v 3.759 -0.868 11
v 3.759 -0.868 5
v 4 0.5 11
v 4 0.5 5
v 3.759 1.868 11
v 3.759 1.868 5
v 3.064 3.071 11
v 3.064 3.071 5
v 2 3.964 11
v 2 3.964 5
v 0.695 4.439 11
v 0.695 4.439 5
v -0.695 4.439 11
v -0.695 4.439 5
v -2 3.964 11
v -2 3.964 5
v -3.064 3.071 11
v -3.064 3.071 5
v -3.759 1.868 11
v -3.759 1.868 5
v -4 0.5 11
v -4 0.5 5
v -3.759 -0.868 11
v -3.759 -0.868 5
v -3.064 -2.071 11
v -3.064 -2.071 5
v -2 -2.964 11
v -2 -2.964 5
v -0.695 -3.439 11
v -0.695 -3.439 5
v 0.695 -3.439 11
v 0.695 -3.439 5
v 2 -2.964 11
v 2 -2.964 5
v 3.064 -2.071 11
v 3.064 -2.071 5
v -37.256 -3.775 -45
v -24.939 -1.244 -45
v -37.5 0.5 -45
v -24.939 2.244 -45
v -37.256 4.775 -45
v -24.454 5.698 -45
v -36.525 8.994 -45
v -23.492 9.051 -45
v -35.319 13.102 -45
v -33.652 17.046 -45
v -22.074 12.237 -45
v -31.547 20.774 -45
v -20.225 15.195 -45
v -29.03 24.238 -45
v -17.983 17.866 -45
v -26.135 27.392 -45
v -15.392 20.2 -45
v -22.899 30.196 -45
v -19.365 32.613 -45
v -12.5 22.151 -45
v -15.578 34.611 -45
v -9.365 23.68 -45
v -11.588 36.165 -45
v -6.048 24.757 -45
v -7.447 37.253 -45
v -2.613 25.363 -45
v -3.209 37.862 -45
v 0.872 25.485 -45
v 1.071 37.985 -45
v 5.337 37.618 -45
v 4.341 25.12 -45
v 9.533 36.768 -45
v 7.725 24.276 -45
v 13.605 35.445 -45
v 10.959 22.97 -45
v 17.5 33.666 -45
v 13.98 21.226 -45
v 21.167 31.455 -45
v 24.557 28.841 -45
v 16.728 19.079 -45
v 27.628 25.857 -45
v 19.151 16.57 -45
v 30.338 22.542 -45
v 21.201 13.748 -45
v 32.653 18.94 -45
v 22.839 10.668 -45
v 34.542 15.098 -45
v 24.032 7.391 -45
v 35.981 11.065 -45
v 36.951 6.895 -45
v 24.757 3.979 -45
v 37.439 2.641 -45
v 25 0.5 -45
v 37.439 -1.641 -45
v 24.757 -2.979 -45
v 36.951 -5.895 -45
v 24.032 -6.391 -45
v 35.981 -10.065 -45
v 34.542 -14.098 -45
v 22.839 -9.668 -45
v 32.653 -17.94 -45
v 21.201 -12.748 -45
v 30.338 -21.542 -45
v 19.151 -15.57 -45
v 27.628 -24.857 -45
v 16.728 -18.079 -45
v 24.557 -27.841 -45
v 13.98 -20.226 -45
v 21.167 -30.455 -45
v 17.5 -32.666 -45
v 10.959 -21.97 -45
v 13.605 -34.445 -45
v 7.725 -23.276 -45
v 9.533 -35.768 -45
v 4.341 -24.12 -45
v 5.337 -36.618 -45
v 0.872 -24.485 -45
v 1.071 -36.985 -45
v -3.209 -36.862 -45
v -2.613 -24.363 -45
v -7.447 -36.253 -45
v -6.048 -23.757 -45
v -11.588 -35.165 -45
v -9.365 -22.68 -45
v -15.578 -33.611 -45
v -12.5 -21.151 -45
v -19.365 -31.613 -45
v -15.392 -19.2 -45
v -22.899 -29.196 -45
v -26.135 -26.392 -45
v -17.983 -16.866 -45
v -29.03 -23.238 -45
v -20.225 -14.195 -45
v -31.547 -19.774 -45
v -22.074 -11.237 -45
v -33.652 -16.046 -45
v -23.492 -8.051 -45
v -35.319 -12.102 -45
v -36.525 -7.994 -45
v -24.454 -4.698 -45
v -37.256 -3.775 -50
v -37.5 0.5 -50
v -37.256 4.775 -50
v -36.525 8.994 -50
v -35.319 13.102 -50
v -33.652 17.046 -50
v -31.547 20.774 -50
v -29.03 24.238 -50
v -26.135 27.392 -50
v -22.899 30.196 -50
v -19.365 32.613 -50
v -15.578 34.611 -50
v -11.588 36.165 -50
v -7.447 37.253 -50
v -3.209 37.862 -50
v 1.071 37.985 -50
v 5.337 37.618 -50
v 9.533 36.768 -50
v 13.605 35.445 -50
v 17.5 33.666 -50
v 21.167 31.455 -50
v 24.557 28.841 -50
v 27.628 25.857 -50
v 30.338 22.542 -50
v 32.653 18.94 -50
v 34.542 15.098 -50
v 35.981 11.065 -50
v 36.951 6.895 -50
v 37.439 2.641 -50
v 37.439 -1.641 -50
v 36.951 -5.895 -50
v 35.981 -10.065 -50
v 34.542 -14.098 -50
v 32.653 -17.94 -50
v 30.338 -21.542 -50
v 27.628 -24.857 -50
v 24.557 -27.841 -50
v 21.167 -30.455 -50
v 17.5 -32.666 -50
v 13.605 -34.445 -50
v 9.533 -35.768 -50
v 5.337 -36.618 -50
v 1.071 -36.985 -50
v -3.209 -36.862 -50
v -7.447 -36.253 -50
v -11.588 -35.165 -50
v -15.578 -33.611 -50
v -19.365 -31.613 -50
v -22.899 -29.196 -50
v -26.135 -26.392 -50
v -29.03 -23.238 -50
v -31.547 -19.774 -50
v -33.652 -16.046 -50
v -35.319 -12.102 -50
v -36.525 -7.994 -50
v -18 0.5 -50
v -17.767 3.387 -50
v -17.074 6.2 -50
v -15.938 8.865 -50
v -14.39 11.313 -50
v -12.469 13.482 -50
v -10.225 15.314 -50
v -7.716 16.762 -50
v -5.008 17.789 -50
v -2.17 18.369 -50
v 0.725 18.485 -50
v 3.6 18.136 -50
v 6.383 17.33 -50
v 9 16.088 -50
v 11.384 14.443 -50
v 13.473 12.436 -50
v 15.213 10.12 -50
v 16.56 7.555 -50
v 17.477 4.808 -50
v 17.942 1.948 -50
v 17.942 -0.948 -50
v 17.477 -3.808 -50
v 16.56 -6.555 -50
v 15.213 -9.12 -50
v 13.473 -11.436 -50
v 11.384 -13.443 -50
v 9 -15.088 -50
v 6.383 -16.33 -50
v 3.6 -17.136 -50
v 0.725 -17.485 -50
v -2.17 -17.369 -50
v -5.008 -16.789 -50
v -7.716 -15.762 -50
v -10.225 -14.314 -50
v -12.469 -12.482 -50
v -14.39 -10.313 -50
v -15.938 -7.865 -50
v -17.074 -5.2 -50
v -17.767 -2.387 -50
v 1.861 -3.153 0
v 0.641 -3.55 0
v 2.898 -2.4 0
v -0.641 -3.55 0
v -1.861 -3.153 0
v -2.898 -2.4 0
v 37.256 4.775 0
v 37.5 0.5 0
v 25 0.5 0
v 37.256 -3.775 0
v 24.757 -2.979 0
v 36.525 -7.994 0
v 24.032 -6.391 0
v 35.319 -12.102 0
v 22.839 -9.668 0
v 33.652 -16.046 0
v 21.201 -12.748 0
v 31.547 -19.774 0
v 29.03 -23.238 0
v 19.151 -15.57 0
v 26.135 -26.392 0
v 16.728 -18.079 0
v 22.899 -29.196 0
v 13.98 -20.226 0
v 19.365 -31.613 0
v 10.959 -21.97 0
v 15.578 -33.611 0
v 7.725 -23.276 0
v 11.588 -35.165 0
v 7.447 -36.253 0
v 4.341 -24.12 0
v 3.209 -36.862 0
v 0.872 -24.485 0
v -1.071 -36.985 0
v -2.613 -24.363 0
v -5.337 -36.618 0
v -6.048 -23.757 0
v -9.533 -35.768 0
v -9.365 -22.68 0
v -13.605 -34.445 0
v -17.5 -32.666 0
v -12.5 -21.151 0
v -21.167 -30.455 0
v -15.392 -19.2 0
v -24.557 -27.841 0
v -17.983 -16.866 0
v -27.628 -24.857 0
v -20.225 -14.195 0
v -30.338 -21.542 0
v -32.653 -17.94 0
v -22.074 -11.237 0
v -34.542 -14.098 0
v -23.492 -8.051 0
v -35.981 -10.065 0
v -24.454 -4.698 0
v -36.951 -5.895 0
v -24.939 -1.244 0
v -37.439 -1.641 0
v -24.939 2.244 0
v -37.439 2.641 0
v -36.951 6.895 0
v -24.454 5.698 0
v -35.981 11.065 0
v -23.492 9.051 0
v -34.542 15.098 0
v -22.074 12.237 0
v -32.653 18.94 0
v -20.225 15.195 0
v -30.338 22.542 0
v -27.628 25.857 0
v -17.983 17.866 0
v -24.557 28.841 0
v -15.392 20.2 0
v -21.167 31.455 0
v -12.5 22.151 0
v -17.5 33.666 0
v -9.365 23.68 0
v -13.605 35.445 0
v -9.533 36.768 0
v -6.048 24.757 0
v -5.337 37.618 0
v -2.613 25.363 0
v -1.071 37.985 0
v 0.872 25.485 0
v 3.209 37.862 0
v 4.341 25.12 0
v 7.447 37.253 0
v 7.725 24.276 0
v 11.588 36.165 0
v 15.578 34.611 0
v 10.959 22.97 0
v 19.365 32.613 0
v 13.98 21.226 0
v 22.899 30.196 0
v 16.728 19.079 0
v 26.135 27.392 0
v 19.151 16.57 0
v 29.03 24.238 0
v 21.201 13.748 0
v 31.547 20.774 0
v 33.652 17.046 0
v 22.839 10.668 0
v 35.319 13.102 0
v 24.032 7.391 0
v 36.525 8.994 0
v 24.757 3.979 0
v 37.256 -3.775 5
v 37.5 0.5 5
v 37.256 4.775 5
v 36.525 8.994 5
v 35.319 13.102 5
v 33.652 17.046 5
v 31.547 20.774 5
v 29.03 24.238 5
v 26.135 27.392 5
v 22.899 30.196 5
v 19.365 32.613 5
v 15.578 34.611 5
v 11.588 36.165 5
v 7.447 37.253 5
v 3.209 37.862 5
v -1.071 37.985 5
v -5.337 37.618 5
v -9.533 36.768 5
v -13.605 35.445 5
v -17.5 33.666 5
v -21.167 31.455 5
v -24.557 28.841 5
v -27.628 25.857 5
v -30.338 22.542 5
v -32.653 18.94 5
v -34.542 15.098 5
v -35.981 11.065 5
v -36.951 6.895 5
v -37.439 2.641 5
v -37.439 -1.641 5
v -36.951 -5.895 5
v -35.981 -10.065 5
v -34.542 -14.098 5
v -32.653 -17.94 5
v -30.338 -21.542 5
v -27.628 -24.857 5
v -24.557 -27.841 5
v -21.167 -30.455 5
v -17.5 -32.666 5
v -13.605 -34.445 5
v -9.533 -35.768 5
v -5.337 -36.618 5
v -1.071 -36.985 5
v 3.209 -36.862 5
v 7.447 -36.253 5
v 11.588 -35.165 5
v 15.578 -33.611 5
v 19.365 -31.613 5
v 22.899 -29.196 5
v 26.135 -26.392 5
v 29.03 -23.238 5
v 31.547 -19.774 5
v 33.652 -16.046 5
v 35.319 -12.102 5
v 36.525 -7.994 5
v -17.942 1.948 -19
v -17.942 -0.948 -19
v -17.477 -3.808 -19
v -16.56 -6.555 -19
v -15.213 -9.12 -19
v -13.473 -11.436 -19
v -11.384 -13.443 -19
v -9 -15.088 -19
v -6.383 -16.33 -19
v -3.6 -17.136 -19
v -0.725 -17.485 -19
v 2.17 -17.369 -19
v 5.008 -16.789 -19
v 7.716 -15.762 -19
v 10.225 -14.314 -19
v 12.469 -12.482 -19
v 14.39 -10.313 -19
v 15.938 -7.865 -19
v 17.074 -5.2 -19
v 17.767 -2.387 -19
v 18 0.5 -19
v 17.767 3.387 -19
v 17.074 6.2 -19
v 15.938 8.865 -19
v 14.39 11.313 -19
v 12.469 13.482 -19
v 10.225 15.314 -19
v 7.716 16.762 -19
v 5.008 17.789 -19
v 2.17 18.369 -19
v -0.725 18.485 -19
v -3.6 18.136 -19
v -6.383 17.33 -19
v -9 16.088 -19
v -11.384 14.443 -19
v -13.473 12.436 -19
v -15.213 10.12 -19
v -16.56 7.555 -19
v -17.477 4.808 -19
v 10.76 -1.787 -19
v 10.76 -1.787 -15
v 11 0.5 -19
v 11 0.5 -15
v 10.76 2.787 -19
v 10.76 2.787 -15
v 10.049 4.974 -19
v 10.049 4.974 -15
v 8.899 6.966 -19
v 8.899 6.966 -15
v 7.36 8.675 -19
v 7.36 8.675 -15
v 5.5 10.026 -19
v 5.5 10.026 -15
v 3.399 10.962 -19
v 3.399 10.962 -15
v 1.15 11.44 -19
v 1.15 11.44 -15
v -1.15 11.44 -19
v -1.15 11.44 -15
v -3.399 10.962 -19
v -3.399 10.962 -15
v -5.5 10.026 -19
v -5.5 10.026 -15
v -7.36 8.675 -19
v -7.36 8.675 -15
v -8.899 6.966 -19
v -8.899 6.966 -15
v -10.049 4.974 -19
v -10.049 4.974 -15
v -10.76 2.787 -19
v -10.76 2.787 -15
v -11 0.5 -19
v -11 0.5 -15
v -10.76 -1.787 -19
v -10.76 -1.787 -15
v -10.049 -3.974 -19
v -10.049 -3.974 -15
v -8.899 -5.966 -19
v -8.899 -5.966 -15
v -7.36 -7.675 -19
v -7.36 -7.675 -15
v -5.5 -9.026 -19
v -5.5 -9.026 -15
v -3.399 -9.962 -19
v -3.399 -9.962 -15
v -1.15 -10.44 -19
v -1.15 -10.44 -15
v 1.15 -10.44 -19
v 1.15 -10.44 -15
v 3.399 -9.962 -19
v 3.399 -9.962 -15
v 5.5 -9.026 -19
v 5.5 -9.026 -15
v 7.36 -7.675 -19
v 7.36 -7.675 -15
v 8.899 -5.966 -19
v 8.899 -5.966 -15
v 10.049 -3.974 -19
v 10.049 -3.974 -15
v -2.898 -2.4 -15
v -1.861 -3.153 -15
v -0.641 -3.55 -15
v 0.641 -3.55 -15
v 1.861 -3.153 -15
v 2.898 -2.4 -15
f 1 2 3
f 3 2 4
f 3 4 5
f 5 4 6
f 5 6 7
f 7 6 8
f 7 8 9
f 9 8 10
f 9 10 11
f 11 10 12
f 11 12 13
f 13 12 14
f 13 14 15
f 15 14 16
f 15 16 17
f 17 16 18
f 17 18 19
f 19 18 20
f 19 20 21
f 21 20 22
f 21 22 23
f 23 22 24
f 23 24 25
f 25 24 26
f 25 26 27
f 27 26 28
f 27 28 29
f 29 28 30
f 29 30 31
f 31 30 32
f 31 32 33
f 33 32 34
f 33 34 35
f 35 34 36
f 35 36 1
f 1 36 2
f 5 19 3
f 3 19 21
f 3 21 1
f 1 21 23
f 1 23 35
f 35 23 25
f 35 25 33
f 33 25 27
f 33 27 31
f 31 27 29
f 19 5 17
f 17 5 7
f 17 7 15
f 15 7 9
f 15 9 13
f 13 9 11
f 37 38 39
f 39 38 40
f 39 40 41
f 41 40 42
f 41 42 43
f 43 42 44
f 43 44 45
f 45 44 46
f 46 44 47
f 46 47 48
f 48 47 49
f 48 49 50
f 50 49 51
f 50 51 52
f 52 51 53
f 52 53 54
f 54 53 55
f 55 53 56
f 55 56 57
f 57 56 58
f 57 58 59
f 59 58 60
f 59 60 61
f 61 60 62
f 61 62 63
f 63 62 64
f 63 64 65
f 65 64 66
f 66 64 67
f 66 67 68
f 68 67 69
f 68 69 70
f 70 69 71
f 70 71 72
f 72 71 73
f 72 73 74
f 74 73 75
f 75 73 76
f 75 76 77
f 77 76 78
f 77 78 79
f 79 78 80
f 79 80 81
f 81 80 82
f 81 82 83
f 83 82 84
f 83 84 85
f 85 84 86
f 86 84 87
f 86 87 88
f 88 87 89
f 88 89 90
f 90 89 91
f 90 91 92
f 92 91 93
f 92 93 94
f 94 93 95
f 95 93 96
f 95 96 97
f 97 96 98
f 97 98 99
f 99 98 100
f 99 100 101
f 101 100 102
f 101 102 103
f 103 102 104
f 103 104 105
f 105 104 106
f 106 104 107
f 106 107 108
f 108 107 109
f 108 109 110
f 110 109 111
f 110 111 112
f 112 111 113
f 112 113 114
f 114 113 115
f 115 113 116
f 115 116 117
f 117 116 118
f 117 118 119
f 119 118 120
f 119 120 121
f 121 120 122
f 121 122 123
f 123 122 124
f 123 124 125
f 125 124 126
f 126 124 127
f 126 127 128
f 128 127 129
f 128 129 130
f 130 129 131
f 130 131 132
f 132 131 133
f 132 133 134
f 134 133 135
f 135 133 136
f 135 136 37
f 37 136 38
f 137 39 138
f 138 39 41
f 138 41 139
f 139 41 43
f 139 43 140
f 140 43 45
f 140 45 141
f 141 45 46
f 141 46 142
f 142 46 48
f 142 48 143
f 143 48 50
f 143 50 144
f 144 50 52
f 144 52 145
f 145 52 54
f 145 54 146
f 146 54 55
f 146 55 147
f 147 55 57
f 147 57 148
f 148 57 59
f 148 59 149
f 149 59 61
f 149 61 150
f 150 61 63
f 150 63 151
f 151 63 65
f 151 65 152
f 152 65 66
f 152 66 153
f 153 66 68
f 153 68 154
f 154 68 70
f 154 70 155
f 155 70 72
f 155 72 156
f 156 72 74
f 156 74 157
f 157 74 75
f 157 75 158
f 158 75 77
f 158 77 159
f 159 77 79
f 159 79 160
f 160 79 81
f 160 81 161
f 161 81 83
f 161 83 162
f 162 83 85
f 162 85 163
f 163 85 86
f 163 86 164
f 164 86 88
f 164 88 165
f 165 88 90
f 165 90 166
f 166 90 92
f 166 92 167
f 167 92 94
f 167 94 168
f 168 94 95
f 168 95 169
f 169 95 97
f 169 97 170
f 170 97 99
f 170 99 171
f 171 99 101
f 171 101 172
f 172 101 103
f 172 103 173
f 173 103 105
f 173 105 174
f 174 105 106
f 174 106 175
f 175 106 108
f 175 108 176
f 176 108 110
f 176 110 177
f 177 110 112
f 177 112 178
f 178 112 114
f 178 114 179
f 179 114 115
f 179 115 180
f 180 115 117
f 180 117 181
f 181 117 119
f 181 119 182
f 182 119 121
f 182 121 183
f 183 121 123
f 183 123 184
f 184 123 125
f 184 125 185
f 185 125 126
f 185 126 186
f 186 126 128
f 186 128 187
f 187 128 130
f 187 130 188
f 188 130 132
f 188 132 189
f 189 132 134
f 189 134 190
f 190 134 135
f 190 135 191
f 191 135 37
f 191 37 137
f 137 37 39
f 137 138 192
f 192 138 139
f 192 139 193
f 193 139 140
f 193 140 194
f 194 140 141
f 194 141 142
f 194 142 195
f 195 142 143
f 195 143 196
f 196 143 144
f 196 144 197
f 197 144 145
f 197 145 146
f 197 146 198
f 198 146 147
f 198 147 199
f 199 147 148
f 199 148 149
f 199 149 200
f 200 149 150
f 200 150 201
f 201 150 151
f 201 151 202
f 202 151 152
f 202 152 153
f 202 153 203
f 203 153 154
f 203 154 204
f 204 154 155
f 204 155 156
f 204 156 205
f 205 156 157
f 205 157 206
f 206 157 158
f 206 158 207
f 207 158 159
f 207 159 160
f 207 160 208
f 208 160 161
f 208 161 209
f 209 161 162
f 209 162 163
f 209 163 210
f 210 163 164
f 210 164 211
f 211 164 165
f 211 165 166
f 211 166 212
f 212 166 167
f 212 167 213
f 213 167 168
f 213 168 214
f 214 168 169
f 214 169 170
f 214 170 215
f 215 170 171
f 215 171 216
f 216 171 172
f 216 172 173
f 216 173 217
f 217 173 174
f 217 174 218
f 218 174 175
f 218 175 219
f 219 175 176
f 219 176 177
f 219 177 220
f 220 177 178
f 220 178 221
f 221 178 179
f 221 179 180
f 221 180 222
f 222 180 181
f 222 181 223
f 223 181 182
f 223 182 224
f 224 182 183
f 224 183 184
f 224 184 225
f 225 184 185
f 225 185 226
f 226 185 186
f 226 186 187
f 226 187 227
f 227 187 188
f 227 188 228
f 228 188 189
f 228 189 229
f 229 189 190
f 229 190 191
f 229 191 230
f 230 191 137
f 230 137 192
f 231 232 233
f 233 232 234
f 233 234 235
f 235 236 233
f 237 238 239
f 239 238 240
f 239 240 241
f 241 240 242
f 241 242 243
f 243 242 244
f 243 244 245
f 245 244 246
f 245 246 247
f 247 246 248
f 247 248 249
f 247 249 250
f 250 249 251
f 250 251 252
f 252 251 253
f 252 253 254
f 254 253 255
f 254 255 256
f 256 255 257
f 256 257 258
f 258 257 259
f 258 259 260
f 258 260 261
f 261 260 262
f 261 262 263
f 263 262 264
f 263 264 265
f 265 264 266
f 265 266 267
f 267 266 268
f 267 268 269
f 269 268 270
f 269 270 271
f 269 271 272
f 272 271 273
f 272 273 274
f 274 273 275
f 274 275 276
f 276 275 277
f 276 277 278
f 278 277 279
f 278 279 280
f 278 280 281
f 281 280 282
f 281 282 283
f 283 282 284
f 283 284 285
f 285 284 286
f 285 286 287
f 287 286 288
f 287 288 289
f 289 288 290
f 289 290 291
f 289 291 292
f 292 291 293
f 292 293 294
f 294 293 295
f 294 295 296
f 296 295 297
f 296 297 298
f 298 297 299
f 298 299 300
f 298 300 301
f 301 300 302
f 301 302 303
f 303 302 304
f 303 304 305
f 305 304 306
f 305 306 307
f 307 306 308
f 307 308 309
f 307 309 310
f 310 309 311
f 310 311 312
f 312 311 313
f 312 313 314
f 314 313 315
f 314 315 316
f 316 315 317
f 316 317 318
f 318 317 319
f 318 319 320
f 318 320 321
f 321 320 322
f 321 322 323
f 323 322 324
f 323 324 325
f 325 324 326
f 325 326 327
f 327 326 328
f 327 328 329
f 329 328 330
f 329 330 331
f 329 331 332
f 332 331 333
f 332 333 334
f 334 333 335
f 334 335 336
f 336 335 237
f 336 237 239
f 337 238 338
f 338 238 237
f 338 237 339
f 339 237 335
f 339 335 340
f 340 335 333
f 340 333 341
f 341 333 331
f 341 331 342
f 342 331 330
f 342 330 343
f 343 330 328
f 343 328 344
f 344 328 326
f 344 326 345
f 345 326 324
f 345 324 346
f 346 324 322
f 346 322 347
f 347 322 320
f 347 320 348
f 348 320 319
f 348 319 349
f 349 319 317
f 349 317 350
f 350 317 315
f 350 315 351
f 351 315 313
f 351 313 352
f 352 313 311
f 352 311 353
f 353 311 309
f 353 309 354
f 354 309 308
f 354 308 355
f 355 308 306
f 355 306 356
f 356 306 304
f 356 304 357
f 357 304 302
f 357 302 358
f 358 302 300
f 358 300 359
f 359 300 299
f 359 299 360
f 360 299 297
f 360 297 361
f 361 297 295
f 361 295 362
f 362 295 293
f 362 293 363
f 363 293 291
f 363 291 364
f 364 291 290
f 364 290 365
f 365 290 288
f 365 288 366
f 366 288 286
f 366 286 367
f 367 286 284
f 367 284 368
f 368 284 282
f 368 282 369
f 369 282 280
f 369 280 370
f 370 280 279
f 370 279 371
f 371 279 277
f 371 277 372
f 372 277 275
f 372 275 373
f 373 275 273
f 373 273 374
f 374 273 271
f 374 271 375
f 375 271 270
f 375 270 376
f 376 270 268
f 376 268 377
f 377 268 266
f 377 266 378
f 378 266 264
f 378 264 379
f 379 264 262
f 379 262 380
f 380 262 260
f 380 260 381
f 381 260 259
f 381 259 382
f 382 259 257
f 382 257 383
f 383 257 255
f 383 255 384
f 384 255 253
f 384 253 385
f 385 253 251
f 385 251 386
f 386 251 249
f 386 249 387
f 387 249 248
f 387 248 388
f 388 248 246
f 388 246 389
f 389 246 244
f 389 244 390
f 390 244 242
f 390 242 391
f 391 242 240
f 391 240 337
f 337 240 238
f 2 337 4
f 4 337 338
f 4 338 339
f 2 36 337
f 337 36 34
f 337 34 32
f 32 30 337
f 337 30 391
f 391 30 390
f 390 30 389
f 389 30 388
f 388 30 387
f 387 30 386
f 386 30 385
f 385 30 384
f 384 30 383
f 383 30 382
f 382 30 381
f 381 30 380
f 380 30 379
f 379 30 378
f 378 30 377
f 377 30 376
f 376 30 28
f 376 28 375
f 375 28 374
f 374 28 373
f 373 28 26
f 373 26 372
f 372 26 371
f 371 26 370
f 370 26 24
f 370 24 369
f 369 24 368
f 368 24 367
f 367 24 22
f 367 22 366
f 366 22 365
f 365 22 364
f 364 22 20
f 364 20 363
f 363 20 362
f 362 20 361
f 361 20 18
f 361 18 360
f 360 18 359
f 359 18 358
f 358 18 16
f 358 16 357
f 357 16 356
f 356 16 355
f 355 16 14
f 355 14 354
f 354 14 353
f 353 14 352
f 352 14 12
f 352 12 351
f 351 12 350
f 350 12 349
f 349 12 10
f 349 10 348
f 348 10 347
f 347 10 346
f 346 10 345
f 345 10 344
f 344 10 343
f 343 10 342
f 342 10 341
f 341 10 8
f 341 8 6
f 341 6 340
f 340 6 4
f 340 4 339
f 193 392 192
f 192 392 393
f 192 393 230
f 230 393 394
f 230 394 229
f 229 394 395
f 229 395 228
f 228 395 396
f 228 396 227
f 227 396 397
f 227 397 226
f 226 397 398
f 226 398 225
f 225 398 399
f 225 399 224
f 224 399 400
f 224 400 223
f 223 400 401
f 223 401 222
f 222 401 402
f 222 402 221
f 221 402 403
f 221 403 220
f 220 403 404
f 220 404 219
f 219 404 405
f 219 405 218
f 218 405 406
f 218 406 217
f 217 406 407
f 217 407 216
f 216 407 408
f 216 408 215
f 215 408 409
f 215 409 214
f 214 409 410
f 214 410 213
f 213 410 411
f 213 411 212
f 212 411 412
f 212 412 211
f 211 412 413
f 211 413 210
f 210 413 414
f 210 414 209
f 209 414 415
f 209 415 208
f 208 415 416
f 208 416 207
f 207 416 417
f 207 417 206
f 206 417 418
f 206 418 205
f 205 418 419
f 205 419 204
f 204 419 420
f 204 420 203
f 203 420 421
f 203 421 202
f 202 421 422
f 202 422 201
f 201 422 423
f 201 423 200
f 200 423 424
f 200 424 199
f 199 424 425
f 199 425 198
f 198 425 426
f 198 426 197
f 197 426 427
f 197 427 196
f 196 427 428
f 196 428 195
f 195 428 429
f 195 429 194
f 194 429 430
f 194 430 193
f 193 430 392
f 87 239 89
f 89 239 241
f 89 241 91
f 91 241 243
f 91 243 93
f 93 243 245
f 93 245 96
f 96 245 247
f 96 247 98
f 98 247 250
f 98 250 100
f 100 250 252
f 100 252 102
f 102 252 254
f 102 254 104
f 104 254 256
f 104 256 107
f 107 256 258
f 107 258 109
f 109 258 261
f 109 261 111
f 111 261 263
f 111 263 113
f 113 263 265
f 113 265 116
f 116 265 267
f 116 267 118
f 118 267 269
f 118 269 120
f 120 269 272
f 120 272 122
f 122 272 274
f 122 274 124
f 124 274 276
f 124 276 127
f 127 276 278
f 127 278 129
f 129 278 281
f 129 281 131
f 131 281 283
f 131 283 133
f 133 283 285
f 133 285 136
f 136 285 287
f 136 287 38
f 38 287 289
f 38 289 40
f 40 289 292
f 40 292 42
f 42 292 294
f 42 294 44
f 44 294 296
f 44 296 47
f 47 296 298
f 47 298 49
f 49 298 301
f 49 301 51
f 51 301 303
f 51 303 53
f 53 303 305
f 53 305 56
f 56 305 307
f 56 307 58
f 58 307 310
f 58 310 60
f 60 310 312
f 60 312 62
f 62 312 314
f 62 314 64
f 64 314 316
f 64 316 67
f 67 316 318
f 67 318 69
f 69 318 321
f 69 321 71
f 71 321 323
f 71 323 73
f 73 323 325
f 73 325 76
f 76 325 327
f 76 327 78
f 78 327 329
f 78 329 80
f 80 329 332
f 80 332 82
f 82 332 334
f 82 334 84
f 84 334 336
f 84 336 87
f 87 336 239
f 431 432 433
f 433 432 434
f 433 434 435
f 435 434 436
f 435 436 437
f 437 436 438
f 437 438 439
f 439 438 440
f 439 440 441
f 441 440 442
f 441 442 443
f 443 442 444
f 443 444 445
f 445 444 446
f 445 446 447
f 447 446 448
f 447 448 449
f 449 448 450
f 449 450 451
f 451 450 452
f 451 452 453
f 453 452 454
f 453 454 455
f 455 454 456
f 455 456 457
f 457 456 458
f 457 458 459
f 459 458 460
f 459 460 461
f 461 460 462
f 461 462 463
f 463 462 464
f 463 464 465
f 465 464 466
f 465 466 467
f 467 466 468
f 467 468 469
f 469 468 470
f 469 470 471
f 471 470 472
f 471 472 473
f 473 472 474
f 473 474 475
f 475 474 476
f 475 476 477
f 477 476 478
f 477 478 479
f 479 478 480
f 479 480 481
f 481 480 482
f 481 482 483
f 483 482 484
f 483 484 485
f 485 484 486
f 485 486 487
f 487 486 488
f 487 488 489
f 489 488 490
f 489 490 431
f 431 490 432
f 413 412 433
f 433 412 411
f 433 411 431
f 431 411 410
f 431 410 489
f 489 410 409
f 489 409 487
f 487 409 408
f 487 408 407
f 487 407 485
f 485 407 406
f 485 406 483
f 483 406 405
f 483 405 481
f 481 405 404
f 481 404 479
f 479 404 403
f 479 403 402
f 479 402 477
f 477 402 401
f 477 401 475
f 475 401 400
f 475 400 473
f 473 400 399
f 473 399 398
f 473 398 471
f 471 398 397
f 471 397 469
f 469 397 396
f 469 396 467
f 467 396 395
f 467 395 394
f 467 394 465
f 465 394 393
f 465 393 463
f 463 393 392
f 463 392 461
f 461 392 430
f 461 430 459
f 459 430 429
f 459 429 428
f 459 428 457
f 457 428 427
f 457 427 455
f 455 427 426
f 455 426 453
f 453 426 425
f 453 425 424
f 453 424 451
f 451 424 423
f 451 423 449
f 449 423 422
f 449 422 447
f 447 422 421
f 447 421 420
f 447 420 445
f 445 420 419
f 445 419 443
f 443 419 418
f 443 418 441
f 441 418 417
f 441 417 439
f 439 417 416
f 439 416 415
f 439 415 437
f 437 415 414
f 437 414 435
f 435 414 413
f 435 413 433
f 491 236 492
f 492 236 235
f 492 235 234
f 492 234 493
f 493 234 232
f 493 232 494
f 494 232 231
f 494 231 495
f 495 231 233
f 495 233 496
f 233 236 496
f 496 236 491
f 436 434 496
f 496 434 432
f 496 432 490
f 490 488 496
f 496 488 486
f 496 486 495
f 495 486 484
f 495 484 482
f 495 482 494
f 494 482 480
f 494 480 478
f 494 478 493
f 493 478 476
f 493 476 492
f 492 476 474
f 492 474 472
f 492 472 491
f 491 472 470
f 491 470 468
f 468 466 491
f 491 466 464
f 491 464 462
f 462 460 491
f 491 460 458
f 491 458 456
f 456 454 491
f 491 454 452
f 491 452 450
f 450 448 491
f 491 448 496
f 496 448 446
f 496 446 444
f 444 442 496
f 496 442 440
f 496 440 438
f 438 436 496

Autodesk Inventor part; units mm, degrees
ref_plane "YZ Plane" through (0, 0, 0) normal (1, 0, 0) x (0, 1, 0)
ref_plane "XZ Plane" through (0, 0, 0) normal (0, 1, 0) x (-1, 0, 0)
ref_plane "XY Plane" through (0, 0, 0) normal (0, 0, 1) x (1, 0, 0)
sketch "Sketch1" plane through (0, 0, 0) normal (0, 0, 1) x (1, 0, 0)
  arc A0 (2.6458, -2.5) -> (-2.6458, -2.5) centre (0, 0.5) ccw projected
  line L0 (-2.6458, -2.5) -> (2.6458, -2.5) projected
  arc A1 (-2.8983, -2.4) -> (2.8983, -2.4) centre (0, 0.5) ccw
  line L1 (-2.8983, -2.4) -> (2.8983, -2.4)
  circle A2 centre (0, 0.5) radius 11 projected
  circle A3 centre (0, 0.5) radius 18 projected
  circle A4 centre (0, 0.5) radius 18.1
  circle A5 centre (0, 0) radius 25
  circle A6 centre (0, 0) radius 37.5
  dimension "d0" = 0.1
  dimension "d1" = 0.1
  dimension "d2" = 50
  dimension "d3" = 75
extrude "Extrusion1" add sketch "Sketch1" against normal blind 15 contours L1 A0 | A2
sketch "Sketch3" plane through (0, 0.5, 0) normal (0, 0, 1) x (1, 0, 0)
  circle A0 centre (0, 0) radius 11 projected
  circle A1 centre (0, 0) radius 18 projected
  point P0 (0, -0.5)
extrude "Extrusion2" add sketch "Sketch3" against normal blind 19
sketch "Sketch4" plane through (0, 0.5, 0) normal (0, 0, 1) x (1, 0, 0)
  circle A0 centre (0, 0) radius 18 projected
  circle A1 centre (0, 0) radius 25
  point P0 (0, -0.5)
  dimension "d8" = 50
extrude "Extrusion3" add sketch "Sketch4" against normal blind 45
sketch "Sketch5" plane through (0, 0.5, 0) normal (0, 0, 1) x (1, 0, 0)
  circle A0 centre (0, 0) radius 37.5
  point P0 (0, -0.5)
  dimension "d11" = 75
extrude "Extrusion4" add sketch "Sketch5" along normal blind 5
sketch "Sketch6" plane through (0, 0.5, -45) normal (0, 0, -1) x (-1, 0, 0)
  circle A0 centre (0, 0) radius 37.5
  circle A1 centre (0, 0) radius 18 projected
  point P0 (0, -0.5)
  dimension "d14" = 75
extrude "Extrusion6" add sketch "Sketch6" along normal blind 5
sketch "Sketch8" plane through (0, 0.5, 5) normal (0, 0, 1) x (1, 0, 0)
  arc A0 (2.6458, -3) -> (-2.6458, -3) centre (0, 0) ccw projected
  line L0 (-2.6458, -3) -> (2.6458, -3) projected
  circle A1 centre (0, 0) radius 4
  point P0 (0, -0.5)
  point P1 (4, 0)
  point P2 (2.6458, -3)
extrude "Extrusion7" add sketch "Sketch8" along normal blind 6
properties part number "Drum"
